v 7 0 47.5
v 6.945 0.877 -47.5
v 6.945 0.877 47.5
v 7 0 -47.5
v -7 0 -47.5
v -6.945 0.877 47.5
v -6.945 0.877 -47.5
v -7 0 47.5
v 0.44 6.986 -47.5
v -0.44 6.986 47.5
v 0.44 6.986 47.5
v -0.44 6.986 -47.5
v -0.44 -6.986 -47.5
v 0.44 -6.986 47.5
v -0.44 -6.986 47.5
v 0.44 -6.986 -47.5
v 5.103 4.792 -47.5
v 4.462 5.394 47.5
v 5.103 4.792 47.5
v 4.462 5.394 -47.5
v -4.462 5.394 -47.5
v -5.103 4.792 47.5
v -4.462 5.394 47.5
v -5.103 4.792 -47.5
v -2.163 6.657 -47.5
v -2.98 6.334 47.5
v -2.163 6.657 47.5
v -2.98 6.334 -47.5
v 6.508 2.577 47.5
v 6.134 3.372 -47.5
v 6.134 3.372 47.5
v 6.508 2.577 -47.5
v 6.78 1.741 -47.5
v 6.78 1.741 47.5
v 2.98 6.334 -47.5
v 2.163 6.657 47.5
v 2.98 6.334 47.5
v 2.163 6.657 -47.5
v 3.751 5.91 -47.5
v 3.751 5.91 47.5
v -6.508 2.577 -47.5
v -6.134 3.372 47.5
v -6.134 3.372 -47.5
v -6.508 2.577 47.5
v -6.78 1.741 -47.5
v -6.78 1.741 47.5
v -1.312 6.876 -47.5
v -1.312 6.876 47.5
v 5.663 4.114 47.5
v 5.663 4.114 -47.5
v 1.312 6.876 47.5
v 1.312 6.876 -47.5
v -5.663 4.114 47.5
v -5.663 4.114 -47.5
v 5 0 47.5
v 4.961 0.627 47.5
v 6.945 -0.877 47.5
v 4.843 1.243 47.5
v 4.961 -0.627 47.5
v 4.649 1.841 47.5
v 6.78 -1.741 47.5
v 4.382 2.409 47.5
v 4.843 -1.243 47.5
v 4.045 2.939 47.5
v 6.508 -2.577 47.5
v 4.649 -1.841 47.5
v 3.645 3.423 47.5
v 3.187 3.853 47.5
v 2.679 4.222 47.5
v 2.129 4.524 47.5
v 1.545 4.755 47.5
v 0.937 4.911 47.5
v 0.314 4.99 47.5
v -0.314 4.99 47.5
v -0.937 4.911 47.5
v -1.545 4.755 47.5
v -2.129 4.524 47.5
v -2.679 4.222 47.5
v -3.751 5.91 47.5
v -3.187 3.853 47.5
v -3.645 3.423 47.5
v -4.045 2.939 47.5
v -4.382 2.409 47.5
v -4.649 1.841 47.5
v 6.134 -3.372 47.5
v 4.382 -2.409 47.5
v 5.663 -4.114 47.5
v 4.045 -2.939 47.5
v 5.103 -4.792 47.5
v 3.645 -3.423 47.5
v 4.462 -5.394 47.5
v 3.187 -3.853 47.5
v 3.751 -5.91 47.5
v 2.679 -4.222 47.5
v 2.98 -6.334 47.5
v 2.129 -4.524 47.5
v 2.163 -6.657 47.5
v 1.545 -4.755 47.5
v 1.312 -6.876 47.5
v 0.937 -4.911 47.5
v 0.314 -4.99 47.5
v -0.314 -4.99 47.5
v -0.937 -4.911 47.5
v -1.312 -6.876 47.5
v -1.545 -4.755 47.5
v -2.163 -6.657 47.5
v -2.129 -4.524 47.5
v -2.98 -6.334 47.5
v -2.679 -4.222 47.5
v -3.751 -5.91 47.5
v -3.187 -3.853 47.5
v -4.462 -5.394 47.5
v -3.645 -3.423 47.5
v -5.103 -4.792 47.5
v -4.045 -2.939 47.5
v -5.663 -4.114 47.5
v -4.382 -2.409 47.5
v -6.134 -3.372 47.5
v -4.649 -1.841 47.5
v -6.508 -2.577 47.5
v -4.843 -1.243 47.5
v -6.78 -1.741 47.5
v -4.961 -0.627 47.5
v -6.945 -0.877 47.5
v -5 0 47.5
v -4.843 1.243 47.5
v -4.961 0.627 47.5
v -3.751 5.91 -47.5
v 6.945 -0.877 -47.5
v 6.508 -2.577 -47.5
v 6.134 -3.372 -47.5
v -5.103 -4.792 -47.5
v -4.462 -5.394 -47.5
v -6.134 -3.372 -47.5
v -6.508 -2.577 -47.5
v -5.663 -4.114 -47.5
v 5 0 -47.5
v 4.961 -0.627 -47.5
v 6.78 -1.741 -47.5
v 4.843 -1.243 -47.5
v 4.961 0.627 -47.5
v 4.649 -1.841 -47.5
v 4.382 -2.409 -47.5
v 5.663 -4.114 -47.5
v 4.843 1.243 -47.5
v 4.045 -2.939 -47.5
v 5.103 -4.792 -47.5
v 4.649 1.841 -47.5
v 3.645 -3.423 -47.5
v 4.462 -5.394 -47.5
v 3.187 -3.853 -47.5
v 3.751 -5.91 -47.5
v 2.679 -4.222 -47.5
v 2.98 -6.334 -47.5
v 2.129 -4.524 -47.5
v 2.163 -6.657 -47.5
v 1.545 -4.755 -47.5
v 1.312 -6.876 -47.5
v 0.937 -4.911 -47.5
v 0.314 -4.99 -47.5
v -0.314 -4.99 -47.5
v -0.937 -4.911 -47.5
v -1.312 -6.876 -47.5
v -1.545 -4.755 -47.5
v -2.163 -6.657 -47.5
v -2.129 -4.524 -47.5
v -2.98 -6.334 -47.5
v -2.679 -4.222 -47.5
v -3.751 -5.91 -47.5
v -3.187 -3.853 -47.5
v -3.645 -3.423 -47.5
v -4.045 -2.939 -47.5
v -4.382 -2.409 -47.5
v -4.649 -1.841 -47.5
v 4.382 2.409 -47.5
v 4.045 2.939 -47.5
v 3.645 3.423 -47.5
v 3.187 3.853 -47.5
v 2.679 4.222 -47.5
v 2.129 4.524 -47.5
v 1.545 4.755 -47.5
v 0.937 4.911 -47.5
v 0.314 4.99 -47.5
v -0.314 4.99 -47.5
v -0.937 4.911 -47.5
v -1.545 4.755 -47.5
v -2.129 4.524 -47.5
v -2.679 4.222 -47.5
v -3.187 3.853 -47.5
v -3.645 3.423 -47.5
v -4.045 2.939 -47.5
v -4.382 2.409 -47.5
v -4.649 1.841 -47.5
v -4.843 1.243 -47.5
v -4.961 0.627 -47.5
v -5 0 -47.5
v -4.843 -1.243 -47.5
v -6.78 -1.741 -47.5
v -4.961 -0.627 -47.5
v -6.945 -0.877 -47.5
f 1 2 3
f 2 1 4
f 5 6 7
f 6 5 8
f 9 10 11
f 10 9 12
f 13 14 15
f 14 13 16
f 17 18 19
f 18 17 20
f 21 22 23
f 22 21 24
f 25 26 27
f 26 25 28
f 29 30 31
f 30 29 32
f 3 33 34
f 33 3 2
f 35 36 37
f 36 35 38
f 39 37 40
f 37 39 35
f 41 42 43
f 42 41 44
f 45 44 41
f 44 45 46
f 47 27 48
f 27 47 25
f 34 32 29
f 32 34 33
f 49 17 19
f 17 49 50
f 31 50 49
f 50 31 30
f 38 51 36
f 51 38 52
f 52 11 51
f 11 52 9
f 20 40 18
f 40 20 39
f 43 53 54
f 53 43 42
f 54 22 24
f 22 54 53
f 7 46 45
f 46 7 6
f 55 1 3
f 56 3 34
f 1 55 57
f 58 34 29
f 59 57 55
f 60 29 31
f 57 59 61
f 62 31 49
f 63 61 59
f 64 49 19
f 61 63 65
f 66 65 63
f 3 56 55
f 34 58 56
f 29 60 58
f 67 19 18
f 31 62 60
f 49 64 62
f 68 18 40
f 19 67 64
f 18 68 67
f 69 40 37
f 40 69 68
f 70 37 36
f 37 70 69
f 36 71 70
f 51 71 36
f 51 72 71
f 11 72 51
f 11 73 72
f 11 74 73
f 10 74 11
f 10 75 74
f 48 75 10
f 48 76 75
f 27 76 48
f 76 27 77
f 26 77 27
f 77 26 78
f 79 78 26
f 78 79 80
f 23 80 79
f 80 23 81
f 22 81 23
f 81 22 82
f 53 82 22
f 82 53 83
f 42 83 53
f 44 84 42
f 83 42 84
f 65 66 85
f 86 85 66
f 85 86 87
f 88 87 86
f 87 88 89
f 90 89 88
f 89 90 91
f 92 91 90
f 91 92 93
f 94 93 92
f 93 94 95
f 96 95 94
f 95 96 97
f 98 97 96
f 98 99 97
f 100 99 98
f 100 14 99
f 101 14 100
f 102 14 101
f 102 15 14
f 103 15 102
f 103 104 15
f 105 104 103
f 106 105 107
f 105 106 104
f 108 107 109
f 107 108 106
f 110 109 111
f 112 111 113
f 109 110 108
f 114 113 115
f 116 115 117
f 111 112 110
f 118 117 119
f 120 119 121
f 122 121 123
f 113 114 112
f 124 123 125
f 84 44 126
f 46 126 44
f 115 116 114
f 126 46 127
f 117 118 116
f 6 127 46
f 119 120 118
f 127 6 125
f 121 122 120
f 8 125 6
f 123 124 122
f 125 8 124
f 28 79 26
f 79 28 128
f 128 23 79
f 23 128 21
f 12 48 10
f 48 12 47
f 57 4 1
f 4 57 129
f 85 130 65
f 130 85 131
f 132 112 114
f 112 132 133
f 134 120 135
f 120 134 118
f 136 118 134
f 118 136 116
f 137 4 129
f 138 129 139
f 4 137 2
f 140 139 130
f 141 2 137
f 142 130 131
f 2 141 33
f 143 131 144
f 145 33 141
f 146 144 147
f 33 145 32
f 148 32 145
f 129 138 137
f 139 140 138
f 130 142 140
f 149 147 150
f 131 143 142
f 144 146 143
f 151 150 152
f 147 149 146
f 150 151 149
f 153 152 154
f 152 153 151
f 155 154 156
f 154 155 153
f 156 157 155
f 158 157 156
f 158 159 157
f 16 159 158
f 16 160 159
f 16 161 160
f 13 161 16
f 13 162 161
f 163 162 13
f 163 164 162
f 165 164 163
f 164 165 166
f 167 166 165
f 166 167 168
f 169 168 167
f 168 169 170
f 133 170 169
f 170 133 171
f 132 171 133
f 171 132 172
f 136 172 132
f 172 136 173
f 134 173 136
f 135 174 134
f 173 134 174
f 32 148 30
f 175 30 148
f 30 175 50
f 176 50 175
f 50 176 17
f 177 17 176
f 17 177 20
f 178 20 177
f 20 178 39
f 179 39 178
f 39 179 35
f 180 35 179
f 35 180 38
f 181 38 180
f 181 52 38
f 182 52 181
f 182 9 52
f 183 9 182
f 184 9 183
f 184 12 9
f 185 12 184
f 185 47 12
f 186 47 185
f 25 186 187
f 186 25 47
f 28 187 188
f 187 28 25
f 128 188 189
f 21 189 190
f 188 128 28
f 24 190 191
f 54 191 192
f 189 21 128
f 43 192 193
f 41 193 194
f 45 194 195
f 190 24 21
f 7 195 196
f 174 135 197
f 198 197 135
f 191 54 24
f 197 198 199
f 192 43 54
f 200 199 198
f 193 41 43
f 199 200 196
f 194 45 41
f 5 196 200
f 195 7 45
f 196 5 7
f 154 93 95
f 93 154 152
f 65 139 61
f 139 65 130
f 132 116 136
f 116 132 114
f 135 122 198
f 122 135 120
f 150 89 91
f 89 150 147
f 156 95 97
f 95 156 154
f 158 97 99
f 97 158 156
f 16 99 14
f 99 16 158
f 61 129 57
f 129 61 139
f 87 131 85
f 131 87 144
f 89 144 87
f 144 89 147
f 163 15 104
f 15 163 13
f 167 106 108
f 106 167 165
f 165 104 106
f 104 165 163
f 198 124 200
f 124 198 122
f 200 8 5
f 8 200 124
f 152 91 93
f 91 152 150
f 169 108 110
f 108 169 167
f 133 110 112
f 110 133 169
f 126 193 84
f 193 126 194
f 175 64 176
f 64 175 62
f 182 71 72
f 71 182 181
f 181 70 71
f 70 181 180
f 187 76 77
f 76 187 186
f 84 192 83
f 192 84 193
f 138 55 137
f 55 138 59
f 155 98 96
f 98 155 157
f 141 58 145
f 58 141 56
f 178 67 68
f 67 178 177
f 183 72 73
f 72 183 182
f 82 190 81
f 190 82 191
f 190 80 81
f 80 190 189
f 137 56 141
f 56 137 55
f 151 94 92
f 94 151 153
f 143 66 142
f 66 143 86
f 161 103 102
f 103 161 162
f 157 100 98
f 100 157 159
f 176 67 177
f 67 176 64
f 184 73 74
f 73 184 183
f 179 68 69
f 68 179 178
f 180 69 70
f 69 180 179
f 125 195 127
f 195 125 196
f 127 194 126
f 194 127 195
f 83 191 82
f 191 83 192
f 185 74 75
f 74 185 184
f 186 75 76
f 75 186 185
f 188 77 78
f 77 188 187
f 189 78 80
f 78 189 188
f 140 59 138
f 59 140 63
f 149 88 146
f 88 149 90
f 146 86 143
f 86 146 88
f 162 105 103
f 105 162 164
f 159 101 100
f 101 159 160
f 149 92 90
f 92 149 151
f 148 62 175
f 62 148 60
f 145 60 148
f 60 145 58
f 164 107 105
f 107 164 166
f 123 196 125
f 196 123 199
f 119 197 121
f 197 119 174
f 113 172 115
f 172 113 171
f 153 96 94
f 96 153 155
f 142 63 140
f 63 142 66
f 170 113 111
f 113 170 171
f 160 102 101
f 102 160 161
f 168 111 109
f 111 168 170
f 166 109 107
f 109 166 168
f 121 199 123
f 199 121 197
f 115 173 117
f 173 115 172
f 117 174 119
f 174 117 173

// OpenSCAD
$fn = 50;


difference() {
	union() {
		translate(v = [0, 0, -47.5000000000]) {
			cylinder(h = 95, r = 7.0000000000);
		}
	}
	union() {
		translate(v = [0, 0, -100.0000000000]) {
			cylinder(h = 200, r = 5);
		}
	}
}
